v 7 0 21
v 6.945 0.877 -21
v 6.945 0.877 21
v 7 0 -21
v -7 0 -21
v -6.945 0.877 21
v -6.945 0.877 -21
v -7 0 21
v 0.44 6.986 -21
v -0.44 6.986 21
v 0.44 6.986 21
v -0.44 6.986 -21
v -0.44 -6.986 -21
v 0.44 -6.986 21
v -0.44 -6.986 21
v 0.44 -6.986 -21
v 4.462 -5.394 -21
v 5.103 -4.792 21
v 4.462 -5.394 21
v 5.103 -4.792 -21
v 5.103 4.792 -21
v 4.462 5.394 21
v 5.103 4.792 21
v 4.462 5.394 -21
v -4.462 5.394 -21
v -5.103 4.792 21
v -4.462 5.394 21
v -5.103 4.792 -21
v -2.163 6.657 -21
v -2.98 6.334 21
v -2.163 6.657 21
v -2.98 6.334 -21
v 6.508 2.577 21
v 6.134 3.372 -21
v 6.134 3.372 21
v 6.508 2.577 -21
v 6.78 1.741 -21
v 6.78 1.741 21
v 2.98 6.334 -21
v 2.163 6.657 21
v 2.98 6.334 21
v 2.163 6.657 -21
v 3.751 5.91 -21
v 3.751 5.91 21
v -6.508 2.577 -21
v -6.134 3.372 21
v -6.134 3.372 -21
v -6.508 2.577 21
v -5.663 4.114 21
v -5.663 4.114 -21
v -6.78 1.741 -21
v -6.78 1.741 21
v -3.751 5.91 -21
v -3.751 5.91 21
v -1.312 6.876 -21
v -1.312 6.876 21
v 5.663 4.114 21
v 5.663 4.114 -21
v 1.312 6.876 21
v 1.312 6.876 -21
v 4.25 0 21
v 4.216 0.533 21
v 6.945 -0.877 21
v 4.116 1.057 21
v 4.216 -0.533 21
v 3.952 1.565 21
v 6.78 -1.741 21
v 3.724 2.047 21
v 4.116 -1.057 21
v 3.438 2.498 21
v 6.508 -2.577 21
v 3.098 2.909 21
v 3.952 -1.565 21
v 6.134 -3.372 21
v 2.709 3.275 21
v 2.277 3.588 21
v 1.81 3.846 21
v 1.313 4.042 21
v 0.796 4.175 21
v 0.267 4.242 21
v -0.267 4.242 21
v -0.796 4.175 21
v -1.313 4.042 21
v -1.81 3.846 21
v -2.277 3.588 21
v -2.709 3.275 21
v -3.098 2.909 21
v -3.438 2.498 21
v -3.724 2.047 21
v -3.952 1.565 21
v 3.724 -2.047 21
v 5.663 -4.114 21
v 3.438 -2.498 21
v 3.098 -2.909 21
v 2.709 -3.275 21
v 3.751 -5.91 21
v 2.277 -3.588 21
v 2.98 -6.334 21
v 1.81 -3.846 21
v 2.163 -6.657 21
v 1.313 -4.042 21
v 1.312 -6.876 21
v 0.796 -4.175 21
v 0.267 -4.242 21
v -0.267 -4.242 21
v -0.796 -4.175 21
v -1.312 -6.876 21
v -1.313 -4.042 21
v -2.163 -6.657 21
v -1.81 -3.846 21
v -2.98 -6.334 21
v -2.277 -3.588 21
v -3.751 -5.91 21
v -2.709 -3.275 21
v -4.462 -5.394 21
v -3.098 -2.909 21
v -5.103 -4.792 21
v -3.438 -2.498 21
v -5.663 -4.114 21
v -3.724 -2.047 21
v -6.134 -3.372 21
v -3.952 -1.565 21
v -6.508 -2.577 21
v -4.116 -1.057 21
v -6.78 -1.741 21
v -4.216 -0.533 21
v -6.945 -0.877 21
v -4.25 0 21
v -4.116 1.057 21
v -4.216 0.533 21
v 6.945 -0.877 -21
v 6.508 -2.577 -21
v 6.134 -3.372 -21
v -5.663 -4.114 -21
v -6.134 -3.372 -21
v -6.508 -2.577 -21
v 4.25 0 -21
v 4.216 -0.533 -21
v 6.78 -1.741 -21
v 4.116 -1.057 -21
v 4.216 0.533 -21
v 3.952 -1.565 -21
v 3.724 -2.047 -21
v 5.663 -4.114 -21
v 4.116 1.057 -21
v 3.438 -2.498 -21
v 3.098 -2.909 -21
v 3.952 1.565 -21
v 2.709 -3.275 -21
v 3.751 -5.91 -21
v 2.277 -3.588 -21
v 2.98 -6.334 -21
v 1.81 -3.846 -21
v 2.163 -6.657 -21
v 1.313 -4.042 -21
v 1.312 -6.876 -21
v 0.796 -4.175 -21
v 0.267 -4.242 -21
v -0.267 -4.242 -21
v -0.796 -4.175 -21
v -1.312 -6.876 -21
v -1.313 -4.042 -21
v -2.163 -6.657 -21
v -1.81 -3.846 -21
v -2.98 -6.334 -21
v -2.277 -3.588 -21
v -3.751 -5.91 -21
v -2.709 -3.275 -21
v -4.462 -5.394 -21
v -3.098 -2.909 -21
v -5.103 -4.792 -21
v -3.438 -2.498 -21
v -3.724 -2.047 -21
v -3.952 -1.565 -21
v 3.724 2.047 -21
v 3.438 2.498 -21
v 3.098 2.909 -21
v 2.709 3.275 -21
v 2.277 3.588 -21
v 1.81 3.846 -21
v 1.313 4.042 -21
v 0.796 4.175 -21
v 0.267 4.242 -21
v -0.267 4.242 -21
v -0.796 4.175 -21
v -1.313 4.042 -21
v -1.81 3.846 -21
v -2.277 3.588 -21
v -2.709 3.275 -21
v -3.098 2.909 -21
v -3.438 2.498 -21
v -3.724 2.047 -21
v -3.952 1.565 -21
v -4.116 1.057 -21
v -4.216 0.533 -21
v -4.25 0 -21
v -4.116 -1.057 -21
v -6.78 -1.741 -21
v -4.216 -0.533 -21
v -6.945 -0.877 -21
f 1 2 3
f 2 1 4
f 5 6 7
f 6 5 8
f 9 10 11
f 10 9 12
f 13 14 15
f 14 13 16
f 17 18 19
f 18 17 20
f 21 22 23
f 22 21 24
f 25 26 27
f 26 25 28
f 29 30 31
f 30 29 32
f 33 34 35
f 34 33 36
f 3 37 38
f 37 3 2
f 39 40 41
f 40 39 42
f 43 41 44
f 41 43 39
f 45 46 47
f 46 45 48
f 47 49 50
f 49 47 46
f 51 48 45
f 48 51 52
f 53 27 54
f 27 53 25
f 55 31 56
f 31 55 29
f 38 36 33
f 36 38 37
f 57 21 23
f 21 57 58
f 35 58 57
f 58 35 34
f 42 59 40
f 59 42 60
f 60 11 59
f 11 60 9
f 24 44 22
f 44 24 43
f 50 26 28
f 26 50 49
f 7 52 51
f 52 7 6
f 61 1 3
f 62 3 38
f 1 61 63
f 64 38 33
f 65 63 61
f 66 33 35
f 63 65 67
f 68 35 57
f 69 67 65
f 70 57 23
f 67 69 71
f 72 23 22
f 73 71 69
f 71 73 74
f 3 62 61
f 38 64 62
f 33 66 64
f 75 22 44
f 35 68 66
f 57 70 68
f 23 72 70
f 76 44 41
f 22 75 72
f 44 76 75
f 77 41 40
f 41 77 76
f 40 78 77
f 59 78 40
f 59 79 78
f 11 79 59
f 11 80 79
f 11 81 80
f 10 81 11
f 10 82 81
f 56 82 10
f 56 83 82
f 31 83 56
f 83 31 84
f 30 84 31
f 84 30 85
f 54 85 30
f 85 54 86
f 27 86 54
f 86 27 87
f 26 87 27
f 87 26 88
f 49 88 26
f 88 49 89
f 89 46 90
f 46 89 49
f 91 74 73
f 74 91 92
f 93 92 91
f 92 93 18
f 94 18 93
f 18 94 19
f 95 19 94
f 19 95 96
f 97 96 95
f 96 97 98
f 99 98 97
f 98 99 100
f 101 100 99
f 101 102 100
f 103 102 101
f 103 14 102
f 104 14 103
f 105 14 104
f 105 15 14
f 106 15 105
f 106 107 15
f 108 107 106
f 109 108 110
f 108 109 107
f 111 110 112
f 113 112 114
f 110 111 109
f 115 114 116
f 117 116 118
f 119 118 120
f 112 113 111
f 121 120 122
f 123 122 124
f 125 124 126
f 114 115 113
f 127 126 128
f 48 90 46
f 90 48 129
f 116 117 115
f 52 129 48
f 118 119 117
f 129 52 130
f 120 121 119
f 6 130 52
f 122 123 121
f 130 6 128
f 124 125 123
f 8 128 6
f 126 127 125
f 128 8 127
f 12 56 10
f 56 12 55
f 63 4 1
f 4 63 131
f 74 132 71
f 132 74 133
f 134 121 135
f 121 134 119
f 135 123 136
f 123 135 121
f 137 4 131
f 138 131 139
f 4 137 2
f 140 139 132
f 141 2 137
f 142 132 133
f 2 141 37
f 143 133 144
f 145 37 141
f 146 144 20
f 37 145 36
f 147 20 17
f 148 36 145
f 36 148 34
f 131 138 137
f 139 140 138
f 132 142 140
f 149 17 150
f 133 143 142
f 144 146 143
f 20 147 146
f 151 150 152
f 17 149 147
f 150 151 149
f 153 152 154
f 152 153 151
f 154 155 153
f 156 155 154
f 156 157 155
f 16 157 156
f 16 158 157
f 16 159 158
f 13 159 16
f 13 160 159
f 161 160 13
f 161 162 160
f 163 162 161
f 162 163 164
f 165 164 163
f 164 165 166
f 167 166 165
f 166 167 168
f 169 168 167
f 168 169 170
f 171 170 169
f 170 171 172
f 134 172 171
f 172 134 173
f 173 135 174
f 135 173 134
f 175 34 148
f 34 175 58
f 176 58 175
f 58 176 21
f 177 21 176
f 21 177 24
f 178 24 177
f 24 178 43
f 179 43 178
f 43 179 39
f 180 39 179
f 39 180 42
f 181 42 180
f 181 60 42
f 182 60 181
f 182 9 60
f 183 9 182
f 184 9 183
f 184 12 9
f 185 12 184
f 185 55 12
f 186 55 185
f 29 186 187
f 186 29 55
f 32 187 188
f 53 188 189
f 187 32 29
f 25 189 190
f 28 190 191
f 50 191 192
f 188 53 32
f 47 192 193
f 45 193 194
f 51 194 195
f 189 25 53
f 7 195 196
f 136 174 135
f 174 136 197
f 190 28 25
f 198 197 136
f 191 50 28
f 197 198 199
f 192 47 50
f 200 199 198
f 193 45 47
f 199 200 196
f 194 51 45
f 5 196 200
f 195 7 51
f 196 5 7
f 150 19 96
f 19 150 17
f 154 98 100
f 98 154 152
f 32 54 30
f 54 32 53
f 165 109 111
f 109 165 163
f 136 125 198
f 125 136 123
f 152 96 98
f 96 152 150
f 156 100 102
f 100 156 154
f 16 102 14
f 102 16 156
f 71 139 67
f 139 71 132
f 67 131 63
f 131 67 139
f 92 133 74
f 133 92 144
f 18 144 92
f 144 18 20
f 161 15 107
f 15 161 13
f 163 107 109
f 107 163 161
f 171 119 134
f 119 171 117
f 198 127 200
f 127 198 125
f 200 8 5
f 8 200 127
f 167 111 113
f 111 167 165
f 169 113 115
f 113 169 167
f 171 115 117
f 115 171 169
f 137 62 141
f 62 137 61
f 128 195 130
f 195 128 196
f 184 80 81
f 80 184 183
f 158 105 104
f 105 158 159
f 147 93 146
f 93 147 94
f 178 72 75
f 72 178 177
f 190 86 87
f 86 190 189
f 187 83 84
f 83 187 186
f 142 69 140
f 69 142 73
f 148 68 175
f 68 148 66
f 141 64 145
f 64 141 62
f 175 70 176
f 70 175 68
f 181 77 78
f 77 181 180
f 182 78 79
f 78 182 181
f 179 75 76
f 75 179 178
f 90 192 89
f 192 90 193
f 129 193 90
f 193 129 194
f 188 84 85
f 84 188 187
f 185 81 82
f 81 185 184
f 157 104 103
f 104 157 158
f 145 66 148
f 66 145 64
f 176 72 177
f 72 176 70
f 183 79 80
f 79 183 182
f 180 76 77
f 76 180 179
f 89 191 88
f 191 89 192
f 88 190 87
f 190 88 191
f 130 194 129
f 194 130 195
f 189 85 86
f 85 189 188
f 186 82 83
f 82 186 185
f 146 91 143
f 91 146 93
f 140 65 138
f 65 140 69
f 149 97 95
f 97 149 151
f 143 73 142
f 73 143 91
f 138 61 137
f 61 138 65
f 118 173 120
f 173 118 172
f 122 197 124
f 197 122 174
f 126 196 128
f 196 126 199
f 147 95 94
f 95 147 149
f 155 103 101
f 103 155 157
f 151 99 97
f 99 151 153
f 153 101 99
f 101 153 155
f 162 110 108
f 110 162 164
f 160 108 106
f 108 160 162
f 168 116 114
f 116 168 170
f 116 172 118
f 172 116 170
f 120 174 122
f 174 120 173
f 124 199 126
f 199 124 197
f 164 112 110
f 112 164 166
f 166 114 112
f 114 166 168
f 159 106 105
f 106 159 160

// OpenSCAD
$fn = 50;


difference() {
	union() {
		translate(v = [0, 0, -21.0000000000]) {
			cylinder(h = 42, r = 7.0000000000);
		}
	}
	union() {
		translate(v = [0, 0, -100.0000000000]) {
			cylinder(h = 200, r = 4.2500000000);
		}
	}
}
